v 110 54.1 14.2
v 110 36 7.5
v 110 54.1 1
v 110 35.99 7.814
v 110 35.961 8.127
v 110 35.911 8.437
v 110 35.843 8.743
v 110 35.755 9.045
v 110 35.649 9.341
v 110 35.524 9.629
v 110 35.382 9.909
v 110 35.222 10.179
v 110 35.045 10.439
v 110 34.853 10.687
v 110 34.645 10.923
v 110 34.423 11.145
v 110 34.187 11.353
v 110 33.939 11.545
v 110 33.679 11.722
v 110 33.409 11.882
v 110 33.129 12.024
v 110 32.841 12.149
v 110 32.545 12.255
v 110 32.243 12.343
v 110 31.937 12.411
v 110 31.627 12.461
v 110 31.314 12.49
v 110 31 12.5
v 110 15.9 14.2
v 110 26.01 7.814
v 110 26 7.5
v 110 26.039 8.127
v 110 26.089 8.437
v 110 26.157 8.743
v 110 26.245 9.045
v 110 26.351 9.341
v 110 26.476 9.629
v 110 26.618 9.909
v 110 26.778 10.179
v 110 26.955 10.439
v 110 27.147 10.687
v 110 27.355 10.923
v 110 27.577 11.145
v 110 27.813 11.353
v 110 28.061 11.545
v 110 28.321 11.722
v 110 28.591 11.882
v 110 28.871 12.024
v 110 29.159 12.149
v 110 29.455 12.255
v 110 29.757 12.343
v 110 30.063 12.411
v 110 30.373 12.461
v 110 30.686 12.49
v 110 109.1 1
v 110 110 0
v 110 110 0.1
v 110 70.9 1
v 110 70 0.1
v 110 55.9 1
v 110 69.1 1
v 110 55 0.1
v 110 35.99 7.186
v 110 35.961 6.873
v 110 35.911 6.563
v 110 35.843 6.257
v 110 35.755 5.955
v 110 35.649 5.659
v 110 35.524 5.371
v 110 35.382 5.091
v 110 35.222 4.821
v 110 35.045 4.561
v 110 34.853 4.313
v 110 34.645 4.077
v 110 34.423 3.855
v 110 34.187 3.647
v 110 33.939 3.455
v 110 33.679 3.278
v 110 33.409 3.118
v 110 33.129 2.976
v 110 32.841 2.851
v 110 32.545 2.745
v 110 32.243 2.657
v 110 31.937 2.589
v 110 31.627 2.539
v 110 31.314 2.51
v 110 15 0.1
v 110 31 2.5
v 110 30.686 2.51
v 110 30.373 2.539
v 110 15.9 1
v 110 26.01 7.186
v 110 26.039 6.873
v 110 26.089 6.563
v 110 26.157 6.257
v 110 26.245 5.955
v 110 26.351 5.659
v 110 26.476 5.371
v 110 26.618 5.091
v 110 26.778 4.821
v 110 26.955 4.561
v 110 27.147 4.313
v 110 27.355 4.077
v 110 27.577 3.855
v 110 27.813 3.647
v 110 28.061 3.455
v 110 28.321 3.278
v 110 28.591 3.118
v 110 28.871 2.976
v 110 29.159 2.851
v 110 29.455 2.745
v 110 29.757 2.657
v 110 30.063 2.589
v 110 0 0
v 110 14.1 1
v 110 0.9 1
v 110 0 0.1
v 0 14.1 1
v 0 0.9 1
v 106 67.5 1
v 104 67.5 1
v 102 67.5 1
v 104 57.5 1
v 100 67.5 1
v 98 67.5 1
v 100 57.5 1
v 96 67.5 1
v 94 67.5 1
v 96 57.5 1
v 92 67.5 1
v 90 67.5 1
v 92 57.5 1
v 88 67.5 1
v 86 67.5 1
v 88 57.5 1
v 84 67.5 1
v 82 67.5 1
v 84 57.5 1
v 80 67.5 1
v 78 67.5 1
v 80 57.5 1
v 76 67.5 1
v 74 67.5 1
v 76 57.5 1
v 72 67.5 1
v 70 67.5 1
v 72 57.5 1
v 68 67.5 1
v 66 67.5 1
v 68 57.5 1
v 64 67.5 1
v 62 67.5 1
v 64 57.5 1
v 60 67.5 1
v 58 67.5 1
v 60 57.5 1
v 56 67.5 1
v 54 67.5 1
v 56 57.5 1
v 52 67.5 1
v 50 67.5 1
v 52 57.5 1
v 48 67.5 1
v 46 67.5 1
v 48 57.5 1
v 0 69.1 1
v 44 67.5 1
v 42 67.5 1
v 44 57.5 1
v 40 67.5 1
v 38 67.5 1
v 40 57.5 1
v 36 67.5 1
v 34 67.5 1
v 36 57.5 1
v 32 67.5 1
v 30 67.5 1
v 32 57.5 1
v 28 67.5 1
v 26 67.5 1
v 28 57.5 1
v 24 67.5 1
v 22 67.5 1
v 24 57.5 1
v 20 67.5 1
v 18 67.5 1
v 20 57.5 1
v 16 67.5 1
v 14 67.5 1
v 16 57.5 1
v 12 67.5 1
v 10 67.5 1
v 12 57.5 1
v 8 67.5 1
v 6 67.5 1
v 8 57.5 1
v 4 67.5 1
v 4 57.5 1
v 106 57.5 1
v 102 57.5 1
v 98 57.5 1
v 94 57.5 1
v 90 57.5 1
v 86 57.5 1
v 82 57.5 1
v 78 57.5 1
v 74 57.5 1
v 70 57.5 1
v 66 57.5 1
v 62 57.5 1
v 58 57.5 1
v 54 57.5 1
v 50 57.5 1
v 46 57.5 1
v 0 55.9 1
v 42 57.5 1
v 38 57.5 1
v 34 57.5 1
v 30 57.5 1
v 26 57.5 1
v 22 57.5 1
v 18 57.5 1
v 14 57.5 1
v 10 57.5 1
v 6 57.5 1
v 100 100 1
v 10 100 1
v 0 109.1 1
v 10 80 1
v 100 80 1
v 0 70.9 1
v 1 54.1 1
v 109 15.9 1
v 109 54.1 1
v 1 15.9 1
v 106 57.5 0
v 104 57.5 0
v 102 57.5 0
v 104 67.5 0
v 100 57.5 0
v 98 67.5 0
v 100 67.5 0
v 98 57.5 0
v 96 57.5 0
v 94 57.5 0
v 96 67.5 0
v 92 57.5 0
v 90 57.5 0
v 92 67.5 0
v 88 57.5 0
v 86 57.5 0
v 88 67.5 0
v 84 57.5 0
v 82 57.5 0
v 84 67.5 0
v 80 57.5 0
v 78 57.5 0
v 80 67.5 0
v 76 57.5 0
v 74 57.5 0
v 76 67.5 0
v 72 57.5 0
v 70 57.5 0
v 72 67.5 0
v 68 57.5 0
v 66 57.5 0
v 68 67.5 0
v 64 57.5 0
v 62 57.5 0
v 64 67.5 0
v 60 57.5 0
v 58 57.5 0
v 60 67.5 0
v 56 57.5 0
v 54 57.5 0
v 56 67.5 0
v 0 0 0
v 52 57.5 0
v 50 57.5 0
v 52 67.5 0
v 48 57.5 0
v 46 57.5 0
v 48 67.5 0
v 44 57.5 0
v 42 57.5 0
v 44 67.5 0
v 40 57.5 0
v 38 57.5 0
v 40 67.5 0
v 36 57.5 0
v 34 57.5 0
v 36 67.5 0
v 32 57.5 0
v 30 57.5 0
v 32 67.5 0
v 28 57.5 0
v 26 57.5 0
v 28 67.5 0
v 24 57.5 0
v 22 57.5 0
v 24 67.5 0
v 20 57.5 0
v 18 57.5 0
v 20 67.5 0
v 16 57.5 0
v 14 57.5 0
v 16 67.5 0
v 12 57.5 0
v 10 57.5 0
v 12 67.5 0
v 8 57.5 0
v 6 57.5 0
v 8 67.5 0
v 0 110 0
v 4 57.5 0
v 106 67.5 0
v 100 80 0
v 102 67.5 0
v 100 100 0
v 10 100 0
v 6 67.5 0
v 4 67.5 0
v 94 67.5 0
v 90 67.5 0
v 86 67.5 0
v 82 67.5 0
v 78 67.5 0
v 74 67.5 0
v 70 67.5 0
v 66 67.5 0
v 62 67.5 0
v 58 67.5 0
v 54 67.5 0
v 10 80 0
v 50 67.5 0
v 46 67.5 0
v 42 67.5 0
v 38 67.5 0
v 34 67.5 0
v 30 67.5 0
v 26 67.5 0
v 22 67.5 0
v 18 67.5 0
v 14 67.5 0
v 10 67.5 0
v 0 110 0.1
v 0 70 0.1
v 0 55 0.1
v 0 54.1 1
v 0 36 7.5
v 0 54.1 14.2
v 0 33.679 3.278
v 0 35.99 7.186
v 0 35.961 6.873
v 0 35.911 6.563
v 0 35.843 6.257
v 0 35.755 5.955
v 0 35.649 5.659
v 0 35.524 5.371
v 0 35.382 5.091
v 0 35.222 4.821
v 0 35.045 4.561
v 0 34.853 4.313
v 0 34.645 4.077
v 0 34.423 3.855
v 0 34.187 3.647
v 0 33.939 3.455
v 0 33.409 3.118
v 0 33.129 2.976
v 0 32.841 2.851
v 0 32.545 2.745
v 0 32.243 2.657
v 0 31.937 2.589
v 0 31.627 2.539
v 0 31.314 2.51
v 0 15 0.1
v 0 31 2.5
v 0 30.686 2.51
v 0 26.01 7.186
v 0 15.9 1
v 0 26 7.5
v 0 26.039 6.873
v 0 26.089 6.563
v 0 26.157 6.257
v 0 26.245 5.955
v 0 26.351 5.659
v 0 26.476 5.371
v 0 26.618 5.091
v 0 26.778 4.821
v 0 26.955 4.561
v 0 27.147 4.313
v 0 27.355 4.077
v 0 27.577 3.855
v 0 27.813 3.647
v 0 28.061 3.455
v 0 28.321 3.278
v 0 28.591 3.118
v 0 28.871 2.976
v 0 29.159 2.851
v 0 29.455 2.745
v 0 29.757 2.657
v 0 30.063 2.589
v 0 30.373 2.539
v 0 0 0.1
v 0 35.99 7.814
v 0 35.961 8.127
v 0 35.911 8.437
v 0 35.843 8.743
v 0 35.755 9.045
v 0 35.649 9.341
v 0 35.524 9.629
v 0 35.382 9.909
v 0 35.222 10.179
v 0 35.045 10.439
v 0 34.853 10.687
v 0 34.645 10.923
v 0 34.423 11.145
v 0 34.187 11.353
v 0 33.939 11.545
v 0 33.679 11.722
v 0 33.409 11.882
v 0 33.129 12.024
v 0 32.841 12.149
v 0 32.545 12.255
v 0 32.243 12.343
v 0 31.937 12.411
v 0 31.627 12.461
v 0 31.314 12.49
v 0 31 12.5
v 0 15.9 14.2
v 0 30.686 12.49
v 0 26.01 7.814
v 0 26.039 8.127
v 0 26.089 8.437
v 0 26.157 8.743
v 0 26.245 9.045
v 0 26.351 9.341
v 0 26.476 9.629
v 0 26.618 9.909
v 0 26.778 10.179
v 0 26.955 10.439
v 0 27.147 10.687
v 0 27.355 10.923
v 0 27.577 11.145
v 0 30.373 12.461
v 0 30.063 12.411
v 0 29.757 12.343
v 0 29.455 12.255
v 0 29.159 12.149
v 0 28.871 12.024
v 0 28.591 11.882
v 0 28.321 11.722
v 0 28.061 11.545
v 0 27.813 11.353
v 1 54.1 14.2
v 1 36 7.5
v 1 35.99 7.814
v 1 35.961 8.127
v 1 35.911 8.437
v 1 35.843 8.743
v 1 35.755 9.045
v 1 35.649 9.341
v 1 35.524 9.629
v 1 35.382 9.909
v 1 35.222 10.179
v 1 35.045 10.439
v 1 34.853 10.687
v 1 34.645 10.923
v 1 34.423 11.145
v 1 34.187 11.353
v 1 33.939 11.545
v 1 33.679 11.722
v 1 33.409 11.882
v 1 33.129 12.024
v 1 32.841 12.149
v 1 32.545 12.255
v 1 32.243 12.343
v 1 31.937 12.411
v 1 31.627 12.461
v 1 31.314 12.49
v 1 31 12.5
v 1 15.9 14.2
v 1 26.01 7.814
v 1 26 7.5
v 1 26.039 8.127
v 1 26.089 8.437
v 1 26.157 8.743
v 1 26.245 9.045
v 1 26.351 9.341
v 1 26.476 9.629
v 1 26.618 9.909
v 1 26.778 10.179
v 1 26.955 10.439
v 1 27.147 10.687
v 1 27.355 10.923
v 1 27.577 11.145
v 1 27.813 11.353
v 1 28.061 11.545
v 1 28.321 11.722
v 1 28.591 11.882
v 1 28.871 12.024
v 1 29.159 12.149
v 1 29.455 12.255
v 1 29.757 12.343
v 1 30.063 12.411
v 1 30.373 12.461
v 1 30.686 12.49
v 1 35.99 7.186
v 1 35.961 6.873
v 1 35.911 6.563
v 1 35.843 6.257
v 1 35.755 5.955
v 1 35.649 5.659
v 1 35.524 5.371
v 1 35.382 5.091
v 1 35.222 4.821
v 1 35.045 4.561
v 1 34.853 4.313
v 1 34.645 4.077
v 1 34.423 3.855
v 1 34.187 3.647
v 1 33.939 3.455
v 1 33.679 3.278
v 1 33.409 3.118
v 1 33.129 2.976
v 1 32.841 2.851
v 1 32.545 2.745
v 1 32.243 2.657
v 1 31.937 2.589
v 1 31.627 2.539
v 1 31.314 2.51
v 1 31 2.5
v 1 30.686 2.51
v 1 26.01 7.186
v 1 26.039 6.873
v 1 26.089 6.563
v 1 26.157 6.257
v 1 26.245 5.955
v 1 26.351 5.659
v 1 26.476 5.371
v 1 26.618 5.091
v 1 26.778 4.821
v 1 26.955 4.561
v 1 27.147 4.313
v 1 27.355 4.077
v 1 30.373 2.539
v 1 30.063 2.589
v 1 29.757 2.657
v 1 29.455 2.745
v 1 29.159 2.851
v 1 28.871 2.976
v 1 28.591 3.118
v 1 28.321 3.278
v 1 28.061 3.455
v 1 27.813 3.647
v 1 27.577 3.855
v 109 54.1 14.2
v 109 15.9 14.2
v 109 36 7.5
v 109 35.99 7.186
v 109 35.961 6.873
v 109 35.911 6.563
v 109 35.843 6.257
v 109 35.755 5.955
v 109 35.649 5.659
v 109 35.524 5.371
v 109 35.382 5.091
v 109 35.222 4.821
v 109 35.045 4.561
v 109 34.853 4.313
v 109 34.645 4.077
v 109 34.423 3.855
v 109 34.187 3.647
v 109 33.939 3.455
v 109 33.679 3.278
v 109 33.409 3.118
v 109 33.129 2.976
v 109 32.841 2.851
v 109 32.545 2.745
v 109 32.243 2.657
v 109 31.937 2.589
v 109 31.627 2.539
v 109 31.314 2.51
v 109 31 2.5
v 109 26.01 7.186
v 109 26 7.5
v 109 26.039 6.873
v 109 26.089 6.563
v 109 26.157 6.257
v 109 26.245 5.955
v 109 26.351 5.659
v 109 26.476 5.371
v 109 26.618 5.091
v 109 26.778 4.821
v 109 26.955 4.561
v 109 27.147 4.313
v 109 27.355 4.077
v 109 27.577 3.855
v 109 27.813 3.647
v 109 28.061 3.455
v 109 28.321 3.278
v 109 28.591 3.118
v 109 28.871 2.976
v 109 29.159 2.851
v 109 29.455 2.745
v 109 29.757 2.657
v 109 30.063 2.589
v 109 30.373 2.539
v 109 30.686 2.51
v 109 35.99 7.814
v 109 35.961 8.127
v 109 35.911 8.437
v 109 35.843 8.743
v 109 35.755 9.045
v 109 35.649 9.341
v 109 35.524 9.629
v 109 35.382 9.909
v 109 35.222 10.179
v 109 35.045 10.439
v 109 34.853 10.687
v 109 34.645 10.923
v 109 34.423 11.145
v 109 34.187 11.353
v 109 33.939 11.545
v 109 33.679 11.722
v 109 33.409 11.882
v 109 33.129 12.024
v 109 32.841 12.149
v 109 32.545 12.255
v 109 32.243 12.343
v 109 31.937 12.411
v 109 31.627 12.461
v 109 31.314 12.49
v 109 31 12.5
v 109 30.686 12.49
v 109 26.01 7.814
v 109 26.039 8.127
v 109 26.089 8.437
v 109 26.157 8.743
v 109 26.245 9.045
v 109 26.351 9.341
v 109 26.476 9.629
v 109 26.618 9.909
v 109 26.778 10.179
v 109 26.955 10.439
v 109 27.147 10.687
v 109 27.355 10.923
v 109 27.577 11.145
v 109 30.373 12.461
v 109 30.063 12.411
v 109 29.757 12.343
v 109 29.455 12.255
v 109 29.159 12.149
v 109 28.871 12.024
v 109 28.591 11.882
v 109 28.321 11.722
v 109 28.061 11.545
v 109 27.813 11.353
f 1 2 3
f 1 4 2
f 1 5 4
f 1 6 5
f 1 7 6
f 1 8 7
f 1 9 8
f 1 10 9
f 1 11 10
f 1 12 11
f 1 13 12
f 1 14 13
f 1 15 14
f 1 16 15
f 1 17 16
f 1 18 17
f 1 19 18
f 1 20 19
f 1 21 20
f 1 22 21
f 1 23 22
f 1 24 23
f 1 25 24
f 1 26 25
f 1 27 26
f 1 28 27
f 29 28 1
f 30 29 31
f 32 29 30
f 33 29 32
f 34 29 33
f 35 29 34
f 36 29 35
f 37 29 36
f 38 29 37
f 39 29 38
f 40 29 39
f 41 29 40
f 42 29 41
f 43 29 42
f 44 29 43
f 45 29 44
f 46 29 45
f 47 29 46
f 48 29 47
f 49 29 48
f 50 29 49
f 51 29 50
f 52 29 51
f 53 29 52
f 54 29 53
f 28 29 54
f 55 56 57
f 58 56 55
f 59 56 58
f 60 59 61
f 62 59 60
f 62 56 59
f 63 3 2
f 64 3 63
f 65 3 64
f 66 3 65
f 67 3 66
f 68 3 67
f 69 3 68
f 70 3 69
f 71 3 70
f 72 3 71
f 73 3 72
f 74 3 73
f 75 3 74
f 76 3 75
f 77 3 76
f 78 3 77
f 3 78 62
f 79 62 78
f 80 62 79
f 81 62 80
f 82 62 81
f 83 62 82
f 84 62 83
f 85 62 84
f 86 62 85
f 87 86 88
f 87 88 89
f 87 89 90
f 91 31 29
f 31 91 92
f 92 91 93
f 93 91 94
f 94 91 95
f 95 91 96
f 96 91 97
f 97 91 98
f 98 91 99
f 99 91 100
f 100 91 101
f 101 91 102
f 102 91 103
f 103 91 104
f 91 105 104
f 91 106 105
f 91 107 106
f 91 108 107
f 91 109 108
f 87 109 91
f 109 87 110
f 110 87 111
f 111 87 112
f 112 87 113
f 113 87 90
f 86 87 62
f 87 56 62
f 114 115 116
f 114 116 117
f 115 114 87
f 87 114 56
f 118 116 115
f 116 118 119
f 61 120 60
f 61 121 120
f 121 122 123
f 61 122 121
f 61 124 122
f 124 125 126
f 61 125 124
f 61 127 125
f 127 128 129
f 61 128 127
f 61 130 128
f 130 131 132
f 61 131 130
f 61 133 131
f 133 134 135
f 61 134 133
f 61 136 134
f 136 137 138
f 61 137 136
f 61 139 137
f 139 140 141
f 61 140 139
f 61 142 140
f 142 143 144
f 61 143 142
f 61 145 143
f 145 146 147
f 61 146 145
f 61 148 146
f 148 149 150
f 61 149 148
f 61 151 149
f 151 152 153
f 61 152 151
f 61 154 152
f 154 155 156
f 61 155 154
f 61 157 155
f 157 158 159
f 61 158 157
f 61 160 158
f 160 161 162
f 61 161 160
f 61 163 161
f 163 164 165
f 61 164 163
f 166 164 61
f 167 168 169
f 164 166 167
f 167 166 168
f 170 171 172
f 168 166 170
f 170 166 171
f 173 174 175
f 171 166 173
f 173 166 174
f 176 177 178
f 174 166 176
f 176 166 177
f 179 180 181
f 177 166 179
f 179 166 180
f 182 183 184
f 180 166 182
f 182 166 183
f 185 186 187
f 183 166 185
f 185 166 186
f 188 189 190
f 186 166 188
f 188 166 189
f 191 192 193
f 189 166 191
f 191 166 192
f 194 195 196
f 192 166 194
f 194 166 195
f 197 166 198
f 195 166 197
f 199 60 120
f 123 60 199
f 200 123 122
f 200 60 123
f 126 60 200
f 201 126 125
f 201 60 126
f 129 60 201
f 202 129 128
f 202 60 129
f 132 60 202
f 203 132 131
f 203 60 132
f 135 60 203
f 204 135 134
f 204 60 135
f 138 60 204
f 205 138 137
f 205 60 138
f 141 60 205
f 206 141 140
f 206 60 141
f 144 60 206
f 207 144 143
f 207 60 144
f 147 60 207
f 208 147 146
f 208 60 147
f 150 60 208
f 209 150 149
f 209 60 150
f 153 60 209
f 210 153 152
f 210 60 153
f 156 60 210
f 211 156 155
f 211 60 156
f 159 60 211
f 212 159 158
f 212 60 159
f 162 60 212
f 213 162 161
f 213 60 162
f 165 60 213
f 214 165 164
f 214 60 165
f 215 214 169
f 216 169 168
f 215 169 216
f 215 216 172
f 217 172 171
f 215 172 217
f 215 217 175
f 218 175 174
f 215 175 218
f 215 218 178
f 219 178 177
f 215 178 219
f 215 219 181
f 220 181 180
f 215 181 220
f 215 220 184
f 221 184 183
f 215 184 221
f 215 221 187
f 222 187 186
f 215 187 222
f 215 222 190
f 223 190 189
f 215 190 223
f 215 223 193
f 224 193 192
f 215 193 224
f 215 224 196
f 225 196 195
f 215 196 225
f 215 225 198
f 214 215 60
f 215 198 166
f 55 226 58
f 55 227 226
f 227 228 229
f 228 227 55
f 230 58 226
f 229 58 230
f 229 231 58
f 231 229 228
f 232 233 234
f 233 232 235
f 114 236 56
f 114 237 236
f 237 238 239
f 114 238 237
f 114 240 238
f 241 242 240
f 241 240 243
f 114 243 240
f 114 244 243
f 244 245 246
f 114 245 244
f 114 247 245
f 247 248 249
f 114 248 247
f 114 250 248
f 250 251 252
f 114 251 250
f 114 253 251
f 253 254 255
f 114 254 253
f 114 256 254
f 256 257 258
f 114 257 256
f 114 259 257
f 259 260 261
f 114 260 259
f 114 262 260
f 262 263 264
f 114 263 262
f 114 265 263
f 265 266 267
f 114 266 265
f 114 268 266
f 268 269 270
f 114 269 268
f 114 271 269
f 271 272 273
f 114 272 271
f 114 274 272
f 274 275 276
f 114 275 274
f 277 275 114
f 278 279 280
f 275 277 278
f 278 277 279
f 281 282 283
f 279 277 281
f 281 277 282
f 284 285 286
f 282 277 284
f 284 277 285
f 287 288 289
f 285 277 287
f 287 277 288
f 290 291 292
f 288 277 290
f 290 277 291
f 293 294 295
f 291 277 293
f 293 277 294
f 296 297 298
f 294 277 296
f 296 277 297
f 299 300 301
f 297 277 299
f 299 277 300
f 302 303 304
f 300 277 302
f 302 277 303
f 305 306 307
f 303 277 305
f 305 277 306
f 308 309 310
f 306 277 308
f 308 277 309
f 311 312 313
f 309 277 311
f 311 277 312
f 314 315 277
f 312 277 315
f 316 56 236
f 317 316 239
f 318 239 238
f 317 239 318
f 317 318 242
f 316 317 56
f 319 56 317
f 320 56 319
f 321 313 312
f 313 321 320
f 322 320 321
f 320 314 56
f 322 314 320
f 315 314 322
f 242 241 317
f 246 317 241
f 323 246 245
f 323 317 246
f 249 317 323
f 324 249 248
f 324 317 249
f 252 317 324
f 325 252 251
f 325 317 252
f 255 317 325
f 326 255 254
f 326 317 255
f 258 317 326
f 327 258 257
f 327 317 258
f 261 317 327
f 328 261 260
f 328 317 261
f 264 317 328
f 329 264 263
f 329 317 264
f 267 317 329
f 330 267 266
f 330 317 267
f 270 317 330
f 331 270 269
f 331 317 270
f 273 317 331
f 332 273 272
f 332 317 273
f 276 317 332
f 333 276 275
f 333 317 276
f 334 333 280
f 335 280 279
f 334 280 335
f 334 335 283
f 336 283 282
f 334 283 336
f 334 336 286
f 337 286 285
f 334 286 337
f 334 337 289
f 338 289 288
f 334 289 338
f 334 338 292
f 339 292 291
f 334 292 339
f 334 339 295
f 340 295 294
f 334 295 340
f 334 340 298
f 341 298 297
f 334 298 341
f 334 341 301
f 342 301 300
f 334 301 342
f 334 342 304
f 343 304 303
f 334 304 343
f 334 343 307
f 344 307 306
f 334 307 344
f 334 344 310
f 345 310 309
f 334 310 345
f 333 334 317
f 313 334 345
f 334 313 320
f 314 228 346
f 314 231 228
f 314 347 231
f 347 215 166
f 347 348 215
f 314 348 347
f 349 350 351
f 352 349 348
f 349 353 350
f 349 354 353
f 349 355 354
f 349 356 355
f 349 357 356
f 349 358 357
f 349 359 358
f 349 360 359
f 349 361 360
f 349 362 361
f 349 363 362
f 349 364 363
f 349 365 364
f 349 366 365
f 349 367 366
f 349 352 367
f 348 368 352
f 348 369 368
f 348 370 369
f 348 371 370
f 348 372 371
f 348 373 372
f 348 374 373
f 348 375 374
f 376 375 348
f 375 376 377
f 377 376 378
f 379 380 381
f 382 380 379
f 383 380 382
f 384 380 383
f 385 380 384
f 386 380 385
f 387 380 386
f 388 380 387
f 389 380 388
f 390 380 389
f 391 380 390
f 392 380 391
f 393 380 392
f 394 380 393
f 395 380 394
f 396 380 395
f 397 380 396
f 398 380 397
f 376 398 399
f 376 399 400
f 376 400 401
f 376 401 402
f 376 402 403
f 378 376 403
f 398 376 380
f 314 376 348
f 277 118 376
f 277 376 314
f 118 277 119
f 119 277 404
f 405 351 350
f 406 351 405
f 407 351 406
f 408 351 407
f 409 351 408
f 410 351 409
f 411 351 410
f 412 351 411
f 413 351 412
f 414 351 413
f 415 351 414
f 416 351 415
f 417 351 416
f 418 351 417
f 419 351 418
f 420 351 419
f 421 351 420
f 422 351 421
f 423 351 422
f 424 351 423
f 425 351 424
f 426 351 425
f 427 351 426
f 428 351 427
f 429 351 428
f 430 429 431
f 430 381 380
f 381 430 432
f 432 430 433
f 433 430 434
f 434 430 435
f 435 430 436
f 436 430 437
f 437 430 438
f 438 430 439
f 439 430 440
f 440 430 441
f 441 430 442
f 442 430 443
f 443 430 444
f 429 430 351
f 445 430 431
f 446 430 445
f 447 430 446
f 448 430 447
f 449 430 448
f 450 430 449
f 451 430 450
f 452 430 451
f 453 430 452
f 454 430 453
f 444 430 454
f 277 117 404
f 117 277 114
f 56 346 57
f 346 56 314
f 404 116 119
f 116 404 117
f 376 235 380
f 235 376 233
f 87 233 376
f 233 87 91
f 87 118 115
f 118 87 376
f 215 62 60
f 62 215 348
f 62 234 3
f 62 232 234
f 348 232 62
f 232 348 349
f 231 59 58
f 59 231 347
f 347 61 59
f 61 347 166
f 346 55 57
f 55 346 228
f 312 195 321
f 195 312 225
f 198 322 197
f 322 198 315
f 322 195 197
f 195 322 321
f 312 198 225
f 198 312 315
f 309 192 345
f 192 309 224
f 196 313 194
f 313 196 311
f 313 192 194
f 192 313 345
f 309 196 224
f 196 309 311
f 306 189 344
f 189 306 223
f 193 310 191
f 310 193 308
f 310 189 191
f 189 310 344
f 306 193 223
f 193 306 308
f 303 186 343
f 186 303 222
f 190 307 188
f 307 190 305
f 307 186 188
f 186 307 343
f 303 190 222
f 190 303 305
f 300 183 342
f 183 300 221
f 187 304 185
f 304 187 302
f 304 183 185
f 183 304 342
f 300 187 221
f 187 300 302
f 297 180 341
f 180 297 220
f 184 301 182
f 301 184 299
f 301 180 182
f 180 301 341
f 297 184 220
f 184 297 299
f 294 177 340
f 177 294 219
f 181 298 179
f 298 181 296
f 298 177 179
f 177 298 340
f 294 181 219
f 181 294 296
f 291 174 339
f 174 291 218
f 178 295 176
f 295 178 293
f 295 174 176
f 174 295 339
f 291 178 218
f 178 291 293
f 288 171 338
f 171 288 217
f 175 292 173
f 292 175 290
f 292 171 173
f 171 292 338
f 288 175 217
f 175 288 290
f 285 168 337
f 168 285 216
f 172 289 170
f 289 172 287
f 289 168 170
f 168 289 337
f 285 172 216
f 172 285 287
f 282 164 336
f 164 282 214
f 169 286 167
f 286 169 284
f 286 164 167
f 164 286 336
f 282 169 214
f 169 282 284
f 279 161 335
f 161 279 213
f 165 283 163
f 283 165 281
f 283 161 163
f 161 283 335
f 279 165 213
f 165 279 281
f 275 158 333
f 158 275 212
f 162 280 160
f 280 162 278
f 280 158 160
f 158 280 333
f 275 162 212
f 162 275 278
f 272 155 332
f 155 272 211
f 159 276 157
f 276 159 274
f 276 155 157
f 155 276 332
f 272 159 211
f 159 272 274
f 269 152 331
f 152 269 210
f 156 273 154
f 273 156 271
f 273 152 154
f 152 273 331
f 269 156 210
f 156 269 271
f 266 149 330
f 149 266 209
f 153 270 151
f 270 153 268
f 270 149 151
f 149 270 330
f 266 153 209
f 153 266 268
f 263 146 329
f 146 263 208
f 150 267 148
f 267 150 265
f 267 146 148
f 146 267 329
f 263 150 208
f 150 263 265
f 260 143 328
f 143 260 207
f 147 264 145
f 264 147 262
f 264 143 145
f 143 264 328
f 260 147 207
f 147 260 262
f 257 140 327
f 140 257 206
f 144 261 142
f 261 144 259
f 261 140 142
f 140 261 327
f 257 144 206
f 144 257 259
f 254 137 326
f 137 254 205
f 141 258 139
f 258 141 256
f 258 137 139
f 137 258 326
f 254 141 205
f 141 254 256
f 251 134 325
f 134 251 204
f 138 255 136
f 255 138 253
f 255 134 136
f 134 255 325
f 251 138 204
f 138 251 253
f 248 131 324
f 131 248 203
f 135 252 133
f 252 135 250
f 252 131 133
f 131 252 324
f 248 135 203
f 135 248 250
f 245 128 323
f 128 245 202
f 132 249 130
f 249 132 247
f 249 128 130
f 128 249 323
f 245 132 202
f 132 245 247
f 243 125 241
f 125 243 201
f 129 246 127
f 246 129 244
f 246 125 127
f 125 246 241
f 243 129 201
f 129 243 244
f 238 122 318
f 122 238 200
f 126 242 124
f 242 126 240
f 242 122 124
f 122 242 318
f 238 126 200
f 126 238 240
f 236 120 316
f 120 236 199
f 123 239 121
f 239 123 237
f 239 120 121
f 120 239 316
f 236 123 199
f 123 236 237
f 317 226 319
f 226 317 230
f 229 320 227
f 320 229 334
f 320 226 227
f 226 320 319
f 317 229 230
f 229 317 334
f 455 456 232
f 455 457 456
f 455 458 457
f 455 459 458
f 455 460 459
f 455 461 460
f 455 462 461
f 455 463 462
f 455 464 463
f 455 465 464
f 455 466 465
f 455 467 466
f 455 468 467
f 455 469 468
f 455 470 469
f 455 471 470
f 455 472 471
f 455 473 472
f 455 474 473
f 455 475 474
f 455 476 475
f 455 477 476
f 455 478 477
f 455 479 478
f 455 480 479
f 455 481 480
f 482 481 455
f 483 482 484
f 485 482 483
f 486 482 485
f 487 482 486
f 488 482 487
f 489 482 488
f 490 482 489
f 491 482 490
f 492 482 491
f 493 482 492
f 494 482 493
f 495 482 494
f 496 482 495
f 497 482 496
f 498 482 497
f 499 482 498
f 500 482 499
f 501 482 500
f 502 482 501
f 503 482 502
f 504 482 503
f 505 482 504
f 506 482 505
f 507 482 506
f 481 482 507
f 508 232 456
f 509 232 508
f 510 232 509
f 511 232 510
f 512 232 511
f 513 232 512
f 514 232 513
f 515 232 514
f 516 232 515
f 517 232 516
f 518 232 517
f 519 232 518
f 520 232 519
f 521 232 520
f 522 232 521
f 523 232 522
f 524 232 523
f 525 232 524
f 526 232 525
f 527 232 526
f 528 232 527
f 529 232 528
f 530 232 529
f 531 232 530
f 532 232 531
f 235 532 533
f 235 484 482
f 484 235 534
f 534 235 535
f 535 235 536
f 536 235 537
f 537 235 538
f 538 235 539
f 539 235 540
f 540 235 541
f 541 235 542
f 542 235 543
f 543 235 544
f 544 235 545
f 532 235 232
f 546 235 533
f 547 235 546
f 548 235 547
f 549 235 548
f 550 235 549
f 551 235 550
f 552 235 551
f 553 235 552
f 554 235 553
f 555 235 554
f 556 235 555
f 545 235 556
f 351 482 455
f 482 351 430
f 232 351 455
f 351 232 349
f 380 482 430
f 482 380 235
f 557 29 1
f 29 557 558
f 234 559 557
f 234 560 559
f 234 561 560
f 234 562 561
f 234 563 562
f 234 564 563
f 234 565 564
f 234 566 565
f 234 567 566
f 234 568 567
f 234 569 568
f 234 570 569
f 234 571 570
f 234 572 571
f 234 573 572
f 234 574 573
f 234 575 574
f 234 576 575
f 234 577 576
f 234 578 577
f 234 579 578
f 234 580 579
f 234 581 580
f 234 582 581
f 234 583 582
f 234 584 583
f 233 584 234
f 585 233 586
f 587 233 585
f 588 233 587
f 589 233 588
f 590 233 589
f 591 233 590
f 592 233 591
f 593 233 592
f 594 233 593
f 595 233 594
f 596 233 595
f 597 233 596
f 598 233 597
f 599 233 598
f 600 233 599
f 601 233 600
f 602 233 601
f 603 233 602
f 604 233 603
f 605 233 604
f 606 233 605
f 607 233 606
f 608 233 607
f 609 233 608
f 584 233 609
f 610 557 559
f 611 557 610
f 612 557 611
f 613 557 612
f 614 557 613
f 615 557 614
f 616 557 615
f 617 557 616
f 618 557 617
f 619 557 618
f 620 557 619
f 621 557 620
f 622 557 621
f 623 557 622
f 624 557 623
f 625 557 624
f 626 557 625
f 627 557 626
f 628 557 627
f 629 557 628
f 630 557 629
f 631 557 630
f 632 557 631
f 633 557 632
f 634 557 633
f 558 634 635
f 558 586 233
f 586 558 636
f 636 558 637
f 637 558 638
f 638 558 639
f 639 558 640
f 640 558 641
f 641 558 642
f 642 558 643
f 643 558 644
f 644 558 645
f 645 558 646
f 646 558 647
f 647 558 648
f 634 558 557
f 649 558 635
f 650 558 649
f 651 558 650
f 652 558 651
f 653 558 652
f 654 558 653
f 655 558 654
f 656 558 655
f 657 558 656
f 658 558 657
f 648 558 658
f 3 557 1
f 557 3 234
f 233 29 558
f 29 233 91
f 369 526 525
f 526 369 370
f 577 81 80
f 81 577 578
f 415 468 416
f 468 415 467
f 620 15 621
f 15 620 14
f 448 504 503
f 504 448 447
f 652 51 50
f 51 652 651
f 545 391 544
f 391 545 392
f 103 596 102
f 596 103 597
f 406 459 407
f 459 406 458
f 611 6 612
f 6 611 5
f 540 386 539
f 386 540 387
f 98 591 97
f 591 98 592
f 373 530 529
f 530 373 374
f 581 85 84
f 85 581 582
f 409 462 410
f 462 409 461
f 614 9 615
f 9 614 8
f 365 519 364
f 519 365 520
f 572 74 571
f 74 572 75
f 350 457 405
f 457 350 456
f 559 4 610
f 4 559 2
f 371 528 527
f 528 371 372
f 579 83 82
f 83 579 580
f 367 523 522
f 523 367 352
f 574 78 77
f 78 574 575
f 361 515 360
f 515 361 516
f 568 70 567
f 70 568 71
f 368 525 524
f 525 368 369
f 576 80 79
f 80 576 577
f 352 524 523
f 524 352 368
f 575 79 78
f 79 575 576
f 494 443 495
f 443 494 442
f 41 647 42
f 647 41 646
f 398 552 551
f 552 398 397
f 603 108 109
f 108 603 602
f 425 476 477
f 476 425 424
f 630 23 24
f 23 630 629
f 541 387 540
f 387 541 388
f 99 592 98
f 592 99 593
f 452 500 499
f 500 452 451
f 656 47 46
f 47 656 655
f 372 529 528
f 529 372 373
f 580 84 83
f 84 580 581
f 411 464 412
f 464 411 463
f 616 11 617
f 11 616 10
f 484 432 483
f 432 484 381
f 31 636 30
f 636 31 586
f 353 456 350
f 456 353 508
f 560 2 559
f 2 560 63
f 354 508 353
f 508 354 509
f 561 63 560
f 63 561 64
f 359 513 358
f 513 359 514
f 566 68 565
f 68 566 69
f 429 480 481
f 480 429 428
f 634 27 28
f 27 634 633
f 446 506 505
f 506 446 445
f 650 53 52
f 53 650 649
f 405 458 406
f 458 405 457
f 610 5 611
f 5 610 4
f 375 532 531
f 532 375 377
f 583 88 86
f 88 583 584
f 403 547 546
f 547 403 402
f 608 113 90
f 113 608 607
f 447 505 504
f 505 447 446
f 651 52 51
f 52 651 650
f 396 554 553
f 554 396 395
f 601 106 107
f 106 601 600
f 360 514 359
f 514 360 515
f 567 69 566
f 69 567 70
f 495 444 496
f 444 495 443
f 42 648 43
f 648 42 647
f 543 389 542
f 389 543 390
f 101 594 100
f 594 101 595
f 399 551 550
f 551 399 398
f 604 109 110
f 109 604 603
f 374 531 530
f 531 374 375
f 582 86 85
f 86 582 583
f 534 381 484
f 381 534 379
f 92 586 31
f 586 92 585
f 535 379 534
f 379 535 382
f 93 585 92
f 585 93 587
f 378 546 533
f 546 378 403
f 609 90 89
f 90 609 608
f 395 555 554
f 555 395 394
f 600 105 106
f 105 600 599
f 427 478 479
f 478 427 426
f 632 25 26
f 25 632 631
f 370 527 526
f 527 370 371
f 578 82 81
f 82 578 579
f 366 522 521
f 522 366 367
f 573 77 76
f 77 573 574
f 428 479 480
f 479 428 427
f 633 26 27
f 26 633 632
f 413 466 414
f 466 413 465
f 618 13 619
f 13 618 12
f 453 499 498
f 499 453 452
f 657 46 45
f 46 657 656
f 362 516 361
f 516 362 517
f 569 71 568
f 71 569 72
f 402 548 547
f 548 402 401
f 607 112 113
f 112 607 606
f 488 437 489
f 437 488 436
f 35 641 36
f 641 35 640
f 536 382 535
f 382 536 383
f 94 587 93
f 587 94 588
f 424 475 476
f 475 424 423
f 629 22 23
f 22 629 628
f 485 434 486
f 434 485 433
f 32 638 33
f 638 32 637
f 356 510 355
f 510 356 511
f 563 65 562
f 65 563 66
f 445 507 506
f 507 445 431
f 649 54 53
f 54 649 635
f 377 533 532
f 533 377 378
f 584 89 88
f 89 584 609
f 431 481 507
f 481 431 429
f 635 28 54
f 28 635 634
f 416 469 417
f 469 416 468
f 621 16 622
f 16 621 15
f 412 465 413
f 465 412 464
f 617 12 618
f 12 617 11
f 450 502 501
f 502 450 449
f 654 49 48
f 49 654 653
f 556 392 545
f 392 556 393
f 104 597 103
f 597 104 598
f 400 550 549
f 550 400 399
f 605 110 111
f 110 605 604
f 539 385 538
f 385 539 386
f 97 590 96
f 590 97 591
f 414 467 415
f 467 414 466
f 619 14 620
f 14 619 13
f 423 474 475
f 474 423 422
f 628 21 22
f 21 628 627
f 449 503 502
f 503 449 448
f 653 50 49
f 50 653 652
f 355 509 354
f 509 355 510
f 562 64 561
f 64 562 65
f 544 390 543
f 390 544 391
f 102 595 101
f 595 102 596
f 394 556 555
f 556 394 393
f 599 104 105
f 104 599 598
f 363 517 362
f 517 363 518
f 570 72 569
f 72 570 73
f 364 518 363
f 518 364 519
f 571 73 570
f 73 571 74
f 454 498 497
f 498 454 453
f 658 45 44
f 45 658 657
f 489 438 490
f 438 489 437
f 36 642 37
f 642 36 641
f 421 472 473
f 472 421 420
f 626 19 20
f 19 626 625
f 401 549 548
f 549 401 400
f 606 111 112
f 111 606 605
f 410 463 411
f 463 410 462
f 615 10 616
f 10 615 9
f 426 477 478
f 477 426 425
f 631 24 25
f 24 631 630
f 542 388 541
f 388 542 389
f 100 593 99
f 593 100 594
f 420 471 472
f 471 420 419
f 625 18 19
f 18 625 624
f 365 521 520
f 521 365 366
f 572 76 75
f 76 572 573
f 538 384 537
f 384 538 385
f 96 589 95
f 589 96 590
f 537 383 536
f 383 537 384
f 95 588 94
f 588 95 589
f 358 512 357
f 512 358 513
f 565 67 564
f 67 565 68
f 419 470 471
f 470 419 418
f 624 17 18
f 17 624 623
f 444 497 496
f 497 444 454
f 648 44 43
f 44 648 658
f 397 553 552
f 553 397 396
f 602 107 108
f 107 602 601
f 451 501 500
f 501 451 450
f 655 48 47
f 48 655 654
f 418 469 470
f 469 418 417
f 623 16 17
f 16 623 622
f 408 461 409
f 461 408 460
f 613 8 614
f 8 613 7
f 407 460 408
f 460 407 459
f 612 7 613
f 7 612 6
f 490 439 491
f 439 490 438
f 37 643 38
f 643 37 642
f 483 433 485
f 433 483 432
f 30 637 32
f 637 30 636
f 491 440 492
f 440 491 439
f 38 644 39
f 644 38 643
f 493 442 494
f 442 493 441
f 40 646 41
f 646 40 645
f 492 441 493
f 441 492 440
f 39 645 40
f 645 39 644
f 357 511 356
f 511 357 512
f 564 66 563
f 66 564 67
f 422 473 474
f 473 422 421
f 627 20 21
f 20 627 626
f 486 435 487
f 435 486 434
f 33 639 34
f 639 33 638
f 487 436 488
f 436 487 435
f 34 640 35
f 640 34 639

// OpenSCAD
// a little foldable box to hide the cables between the two LED lamps on my desk
mm = 1;
cm = 10 * mm;
x = 11 * cm; // width
y = 4 * cm; // depth
z = 15 * mm; // height

w = 1 * mm; // material width

e = 1 * mm; // a little extra offset to ensure that cut-offs are not leaving a zero width material on the side

// the depth of the chamfer that makes the sides foldable
chamfer_depth = 0.9 * mm;

sideX = w;
sideY = y - 2 * chamfer_depth;
sideZ = z - 2 * chamfer_depth;

hole_pos = 15 * mm; // the position of the hole at the side
d = 10 * mm; // diameter of the hole on the side

topPlaneMargin = 10*mm;
backGapWidth = 2*mm;
backGapHeight = 10*mm;

colors = [ "red", "green", "blue", "yellow", "orange", "purple", "black", "white"   ];

module chamfer() {
    translate([- e, 0, w - chamfer_depth])
        rotate([45, 0, 0])
            cube([x + 2 * e, 2 * w, 2 * w]);
}
offset = [z, y, z, y];
// calculate the positions of the sides in the Y direction
pos = [ 0,
        offset[0],
        offset[0] + offset[1],
        offset[0] + offset[1] + offset[2],
        offset[0] + offset[1] + offset[2] + offset[3]
];

// the four sides of the box laying on the XY sheet
difference() {
    union() {
        for (i = [0:len(offset) - 1])
        color(colors[i])
            translate([0, pos[i], 0])
                cube([x, offset[i], w]);
    }
    // remove the chamfers
    union() {
        for (i = [0:len(pos) - 1]) {
            translate([0, pos[i], 0])
                chamfer();
        }
    }

    // remove the middle of the top, just to save some material
    translate([topPlaneMargin, pos[3] + topPlaneMargin, -e])
        cube([x-2*topPlaneMargin, y - 2 * topPlaneMargin, w + 2 * e]);

    for( i = [0:x/2/backGapWidth-2])
        translate([2*backGapWidth+i * 2 * backGapWidth, pos[2]+(z-backGapHeight)/2, -e])
            cube([backGapWidth, backGapHeight, w + 2 * e]);

}

// the two sides with the holes for the cables
difference(){
    union(){
        translate([0, pos[1] + chamfer_depth, w])
            cube([sideX, sideY, sideZ]);
        translate([x-w, pos[1] + chamfer_depth, w])
            cube([sideX, sideY, sideZ]);
    }
    // creating the two holes with a long cylinder
    translate([- e,  hole_pos + pos[1] + w,z/2])
        rotate([0, 90, 0])
            cylinder(d = d, h = x + 2 * e, $fn= 100);
}
